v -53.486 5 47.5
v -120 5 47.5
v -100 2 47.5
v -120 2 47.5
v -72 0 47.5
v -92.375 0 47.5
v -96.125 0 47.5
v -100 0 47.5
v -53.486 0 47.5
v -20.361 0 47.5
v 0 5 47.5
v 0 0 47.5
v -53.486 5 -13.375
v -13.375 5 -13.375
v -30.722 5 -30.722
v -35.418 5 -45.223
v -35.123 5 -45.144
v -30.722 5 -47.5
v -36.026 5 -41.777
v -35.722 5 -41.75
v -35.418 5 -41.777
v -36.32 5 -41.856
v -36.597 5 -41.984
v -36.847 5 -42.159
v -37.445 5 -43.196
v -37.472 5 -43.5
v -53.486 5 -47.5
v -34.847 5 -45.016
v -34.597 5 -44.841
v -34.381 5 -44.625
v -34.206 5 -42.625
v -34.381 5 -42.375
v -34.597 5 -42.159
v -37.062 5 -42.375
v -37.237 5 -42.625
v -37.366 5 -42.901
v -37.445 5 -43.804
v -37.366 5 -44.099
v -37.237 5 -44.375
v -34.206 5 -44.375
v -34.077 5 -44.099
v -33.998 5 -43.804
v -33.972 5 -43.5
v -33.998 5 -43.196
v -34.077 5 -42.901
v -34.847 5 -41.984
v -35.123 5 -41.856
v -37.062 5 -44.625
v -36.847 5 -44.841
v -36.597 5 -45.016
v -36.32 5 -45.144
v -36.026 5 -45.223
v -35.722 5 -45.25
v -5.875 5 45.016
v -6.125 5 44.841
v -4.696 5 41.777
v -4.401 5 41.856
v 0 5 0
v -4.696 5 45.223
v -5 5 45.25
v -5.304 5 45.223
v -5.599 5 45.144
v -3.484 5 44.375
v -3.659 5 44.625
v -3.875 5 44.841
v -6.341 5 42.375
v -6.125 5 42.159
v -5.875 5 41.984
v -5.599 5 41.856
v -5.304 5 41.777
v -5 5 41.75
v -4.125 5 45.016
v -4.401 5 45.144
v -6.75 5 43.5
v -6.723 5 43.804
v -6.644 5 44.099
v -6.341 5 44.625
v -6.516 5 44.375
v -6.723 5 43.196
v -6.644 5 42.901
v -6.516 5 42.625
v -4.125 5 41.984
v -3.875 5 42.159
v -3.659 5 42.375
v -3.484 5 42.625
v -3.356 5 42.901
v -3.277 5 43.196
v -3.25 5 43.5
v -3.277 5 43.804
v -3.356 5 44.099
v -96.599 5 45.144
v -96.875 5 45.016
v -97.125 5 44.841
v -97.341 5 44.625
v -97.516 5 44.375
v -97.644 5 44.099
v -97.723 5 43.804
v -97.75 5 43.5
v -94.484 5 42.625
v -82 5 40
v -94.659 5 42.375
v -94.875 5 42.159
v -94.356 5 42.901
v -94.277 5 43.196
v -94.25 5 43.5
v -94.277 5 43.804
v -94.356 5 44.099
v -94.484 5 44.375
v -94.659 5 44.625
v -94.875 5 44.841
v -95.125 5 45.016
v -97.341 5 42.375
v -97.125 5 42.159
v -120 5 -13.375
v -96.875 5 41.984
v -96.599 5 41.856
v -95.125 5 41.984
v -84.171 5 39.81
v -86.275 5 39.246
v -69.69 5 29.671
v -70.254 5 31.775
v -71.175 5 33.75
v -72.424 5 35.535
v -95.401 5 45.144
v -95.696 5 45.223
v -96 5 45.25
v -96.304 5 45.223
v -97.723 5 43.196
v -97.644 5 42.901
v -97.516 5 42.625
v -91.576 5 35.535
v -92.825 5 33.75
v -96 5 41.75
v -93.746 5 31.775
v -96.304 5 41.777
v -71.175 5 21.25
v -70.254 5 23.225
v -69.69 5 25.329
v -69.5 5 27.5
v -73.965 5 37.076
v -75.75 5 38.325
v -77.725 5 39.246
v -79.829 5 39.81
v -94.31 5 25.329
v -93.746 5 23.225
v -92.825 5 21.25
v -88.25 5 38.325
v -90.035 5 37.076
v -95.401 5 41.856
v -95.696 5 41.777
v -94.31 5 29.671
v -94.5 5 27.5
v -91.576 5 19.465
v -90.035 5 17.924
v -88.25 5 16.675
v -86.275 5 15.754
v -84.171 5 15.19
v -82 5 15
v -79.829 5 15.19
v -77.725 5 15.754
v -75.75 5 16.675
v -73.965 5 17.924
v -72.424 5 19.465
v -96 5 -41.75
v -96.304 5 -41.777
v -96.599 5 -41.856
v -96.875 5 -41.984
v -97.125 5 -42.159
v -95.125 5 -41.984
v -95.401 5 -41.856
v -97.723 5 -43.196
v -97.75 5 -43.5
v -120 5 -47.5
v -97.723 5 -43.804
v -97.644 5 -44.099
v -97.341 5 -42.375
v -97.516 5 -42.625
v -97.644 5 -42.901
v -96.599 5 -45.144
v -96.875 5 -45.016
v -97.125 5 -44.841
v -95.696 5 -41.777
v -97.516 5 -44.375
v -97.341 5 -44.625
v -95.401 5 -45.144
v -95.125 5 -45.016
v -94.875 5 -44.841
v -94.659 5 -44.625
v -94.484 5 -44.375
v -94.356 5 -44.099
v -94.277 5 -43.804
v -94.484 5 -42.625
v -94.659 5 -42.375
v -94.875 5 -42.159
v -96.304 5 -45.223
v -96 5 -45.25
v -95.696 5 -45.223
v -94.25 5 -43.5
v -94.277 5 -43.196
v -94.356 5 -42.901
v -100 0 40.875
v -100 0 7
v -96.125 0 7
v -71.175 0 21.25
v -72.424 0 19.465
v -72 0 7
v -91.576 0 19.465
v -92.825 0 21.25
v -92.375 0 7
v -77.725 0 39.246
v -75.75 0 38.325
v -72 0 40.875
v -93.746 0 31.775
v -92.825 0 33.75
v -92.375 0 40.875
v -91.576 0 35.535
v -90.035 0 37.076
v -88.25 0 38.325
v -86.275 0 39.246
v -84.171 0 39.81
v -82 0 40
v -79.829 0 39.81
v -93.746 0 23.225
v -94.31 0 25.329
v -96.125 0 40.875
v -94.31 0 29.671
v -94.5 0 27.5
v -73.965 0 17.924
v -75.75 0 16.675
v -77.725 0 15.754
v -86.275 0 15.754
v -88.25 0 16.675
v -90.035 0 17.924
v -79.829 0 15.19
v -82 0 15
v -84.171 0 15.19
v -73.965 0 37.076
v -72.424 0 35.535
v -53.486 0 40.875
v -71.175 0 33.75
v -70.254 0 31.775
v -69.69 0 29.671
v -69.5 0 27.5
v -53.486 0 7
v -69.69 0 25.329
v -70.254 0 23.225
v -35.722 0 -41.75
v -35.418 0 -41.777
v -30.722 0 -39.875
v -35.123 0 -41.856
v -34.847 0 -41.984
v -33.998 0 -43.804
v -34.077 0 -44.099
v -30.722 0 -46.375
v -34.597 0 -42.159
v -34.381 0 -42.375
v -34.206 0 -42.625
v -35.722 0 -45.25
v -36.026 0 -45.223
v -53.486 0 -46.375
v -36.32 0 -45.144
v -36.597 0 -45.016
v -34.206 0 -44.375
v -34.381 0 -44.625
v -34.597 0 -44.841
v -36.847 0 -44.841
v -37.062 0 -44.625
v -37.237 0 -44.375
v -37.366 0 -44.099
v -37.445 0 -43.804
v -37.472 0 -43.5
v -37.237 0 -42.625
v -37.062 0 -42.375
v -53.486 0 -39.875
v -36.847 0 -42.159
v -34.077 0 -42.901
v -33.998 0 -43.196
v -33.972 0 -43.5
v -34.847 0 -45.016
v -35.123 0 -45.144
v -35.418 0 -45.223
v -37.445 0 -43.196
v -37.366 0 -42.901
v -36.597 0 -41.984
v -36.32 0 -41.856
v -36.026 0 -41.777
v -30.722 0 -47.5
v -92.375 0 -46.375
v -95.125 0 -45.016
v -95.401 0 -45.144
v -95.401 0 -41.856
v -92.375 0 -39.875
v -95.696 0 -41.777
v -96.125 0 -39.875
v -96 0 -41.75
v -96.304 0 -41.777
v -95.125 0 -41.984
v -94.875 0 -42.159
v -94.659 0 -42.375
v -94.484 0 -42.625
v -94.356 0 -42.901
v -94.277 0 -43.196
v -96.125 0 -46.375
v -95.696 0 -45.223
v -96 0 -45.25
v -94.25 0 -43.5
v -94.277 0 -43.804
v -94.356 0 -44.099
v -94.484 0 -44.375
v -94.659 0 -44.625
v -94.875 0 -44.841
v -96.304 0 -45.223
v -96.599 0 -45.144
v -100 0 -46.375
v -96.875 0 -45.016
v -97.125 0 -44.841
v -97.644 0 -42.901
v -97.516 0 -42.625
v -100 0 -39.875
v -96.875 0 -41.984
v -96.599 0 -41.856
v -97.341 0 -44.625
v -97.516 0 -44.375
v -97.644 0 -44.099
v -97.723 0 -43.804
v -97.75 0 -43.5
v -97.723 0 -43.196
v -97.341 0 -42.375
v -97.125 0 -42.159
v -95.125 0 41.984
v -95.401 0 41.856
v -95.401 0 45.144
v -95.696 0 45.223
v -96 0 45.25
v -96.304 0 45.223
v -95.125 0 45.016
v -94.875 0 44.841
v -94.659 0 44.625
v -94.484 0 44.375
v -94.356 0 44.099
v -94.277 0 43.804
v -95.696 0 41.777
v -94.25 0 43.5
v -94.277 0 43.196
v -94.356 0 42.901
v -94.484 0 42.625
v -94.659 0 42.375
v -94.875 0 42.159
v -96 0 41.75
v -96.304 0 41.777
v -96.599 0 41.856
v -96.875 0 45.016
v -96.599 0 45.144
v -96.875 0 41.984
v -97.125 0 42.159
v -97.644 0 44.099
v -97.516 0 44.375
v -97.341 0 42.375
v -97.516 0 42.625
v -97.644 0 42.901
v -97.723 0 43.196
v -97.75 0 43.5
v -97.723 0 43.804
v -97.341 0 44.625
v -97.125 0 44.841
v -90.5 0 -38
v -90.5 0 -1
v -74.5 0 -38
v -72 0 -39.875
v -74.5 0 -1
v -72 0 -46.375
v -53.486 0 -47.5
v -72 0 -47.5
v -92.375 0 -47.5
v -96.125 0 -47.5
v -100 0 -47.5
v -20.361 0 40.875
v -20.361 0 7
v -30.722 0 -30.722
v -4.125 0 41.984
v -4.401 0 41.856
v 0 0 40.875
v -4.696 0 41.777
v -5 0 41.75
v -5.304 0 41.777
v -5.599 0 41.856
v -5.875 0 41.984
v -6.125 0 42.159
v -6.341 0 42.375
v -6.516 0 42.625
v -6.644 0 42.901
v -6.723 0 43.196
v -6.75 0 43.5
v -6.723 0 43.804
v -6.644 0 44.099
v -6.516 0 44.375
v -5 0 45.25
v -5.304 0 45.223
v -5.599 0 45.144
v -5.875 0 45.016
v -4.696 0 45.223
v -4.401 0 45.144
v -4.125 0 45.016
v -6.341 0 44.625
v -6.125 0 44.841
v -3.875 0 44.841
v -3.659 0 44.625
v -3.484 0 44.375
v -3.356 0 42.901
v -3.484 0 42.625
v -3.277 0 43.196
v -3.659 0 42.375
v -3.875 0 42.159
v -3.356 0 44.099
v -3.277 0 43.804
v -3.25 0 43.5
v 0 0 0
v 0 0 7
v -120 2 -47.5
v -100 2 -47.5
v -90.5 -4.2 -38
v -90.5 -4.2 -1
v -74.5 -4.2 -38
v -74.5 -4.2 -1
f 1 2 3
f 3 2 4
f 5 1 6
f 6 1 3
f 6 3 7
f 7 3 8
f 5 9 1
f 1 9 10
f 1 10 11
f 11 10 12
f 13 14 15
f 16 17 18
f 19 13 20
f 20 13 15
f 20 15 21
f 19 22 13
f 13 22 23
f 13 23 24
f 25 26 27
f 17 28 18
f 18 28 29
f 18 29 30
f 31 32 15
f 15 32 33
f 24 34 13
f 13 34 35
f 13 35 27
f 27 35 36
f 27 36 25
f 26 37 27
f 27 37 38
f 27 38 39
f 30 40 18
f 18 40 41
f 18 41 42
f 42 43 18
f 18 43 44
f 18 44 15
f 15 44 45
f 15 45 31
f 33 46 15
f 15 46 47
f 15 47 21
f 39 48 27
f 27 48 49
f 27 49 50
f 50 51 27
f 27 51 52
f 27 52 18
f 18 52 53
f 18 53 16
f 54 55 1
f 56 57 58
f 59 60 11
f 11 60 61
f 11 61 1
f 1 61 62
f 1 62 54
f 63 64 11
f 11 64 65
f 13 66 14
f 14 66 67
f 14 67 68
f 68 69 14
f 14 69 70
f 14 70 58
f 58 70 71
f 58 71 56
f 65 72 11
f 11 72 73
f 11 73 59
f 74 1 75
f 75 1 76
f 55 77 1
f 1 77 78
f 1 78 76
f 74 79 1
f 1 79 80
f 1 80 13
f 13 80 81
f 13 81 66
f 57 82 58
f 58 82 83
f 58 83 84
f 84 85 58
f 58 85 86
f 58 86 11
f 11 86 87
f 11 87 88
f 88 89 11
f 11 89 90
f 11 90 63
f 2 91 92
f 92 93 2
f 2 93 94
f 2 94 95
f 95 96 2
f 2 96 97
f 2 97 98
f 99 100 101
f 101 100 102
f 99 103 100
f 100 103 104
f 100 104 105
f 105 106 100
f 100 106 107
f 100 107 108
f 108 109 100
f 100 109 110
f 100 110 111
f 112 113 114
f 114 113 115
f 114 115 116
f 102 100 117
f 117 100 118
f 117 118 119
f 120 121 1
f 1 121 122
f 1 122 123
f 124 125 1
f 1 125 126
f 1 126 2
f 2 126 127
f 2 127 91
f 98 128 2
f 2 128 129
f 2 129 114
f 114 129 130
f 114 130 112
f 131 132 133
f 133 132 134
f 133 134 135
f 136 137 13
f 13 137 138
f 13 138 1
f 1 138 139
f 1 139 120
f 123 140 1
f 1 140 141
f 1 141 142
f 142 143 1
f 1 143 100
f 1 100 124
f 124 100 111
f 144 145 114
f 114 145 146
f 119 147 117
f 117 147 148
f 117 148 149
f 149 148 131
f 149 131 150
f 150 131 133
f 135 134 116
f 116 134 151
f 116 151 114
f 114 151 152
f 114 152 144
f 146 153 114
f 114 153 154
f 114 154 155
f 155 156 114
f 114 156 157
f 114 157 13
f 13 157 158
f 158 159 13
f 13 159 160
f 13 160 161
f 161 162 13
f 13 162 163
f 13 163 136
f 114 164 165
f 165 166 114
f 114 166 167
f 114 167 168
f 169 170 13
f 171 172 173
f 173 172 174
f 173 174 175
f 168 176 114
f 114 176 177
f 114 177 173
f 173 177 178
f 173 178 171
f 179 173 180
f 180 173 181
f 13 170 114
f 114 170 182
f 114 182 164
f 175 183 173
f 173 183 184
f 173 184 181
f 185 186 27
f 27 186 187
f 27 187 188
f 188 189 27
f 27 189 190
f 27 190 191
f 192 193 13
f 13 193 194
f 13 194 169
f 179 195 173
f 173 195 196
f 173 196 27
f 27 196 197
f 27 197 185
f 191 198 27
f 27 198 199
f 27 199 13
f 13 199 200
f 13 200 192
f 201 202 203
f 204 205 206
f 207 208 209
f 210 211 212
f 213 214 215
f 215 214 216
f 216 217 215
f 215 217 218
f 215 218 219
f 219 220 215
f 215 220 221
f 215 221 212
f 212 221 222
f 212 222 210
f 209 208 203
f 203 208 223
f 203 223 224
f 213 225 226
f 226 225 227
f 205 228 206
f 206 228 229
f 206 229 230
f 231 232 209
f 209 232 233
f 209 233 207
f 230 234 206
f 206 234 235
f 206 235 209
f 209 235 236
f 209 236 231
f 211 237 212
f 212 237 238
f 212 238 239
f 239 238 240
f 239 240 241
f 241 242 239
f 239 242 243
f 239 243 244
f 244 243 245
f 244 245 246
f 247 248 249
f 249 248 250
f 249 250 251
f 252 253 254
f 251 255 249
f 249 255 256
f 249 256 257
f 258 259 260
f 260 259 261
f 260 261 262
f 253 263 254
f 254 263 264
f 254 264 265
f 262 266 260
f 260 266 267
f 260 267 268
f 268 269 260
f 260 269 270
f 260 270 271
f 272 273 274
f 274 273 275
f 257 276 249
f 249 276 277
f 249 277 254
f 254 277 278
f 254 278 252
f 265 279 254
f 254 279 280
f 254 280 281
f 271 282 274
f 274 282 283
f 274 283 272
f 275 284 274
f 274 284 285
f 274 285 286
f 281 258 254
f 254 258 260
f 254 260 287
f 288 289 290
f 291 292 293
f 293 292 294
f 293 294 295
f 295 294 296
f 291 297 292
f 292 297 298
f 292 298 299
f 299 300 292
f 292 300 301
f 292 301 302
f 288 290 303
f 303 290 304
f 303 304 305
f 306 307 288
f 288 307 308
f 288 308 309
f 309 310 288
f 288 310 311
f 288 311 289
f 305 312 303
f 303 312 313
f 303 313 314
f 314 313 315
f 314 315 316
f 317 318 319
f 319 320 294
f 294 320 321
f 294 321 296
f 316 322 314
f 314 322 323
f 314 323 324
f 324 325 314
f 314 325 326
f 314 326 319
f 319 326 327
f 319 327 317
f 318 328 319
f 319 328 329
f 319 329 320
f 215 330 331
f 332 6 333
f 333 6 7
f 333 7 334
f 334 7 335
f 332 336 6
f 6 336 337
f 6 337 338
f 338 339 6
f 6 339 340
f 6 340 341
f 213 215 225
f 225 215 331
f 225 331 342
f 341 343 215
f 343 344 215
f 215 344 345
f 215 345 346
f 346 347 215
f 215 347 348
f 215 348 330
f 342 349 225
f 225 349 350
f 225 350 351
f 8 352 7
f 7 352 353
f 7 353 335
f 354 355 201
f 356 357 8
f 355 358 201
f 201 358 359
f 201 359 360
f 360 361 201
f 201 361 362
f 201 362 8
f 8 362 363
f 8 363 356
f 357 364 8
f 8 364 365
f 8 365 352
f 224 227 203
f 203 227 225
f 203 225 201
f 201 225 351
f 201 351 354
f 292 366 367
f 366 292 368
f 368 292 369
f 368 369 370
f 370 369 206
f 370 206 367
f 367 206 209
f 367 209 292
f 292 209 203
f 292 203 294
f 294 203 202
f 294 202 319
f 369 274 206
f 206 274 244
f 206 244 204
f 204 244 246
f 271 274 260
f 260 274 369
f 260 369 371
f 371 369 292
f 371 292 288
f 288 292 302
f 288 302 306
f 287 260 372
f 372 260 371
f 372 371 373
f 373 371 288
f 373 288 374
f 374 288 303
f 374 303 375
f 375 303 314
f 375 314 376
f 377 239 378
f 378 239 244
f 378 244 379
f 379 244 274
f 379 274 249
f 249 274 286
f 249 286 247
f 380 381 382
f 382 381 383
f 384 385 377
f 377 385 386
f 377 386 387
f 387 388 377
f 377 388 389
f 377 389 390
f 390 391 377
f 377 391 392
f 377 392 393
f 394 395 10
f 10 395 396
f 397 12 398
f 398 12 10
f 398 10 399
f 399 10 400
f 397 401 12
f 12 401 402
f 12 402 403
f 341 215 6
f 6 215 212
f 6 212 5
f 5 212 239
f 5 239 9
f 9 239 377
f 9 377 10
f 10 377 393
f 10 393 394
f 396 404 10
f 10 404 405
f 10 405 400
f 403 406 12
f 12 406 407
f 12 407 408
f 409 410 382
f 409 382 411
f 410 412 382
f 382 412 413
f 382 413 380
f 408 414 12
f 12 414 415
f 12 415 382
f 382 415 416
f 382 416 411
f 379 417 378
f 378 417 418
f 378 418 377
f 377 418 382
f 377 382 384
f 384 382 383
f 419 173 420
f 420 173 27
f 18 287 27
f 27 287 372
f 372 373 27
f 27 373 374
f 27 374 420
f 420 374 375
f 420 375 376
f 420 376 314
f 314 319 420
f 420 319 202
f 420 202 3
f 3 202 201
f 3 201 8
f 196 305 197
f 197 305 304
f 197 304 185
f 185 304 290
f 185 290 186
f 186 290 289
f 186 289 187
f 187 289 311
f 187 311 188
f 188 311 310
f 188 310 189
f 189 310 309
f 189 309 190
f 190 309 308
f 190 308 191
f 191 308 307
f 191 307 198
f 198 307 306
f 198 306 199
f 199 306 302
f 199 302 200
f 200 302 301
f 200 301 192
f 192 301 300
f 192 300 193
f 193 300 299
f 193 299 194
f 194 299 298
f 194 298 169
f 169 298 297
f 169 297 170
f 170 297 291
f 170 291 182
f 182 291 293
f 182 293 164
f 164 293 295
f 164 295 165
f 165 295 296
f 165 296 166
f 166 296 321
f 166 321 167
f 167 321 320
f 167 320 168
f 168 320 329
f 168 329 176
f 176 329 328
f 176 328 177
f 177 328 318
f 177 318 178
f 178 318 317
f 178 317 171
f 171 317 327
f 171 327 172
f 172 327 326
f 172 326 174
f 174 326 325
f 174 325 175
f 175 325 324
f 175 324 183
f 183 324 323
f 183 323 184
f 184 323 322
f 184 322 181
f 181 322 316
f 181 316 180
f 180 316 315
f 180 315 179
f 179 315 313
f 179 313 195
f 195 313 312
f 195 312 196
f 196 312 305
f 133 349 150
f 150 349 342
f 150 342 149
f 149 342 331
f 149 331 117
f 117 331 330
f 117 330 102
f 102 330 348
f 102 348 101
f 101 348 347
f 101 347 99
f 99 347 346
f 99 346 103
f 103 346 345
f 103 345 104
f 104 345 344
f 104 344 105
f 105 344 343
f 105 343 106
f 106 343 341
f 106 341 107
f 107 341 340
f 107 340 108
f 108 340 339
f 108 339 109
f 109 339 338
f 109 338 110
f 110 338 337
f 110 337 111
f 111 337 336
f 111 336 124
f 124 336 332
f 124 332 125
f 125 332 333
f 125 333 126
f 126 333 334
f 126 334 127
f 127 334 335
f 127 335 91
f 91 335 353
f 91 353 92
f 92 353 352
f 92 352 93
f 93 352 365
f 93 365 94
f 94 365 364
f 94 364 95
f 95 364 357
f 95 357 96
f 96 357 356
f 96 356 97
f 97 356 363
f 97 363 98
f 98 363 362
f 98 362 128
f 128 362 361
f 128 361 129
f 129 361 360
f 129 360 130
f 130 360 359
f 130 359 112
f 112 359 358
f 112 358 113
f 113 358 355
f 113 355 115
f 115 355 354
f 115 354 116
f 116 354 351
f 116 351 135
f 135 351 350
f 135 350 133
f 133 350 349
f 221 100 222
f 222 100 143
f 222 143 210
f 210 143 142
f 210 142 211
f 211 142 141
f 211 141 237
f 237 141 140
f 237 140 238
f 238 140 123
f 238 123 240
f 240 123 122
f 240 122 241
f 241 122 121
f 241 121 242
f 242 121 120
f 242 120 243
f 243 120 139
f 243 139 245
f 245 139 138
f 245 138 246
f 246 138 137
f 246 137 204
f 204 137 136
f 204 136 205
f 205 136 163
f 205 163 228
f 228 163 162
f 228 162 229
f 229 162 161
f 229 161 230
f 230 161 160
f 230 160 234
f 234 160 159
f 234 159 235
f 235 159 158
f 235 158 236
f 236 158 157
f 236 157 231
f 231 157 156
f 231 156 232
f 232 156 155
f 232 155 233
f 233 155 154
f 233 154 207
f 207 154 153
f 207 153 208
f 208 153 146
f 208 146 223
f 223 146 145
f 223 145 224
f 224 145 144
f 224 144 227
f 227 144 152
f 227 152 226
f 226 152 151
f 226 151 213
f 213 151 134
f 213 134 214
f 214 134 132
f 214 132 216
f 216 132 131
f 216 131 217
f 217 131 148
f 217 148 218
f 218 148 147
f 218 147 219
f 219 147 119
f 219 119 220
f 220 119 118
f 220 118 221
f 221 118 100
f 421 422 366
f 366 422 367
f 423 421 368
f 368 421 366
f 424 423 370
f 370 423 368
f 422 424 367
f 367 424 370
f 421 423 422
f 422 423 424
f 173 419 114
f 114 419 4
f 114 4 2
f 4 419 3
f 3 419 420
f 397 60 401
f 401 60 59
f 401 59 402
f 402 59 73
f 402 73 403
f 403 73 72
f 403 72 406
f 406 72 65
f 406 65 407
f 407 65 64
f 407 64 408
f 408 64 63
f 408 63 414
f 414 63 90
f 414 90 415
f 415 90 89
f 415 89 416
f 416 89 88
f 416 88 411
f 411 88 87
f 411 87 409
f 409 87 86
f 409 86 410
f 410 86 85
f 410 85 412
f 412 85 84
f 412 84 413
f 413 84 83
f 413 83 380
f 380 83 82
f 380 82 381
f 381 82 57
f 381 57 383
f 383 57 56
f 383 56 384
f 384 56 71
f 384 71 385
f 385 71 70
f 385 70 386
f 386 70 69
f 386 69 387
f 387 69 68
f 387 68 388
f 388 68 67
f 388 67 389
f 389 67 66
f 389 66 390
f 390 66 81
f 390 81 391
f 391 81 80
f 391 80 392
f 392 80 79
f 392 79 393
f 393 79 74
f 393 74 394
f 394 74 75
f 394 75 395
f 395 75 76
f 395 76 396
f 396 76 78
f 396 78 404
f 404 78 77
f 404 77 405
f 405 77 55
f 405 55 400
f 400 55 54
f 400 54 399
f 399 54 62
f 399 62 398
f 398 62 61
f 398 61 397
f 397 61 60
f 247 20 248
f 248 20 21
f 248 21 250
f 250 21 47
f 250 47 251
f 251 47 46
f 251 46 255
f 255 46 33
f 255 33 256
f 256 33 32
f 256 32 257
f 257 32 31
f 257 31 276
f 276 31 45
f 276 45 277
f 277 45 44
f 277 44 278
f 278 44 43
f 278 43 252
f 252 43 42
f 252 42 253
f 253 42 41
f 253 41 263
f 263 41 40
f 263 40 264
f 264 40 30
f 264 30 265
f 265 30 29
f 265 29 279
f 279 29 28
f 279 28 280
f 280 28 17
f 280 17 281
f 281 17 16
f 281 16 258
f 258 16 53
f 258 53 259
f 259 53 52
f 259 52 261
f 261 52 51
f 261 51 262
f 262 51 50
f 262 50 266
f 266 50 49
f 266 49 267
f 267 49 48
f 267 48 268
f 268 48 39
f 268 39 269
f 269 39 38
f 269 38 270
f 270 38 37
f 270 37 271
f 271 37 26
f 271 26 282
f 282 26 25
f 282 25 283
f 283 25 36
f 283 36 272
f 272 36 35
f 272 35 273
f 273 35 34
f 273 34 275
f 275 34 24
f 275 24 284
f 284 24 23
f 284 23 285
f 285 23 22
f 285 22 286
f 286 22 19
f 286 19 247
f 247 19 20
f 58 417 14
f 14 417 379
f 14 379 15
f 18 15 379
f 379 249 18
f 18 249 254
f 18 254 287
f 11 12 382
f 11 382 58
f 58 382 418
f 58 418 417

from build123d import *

# Parameters (mm, degrees)
SKETCH1_W               = 200
SKETCH1_H               = 95
SKETCH1_R               = 1.75
BOSS_EXTRUDE1_DEPTH     = 5
SKETCH2_R               = 15
SKETCH2_R_2             = 12.5
CUT_EXTRUDE1_DEPTH      = 5
SKETCH4_W               = 16
SKETCH4_H               = 37
BOSS_EXTRUDE2_DEPTH     = 4.2
SKETCH6_W               = 20
SKETCH6_H               = 95
BOSS_EXTRUDE3_DEPTH     = 3
BOSS_EXTRUDE4_START     = 4
BOSS_EXTRUDE4_DEPTH     = 4
SKETCH9_R               = 13
BOSS_EXTRUDE5_DEPTH     = 2
CUT_EXTRUDE2_DEPTH      = 5
SKETCH11_R              = 1.75
CUT_EXTRUDE3_DEPTH      = 10
CUT_EXTRUDE4_DEPTH      = 10
CUT_EXTRUDE4_DEPTH_BACK = 10
SKETCH14_R              = 1.75


with BuildPart() as part:
    # Sketch1 → Boss-Extrude1 (new body)
    with BuildSketch(Plane(origin=(0, 0, 0), x_dir=(1, 0, 0), z_dir=(0, 1, 0))):
        Rectangle(SKETCH1_W, SKETCH1_H)
        with Locations(Location((-96, 43.5, 0), (0, 0, 270))):
            Circle(SKETCH1_R, mode=Mode.SUBTRACT)
        with Locations(Location((-96, -43.5, 0), (0, 0, 270))):
            Circle(SKETCH1_R, mode=Mode.SUBTRACT)
        with Locations(Location((97, 43.5, 0), (0, 0, 270))):
            Circle(SKETCH1_R, mode=Mode.SUBTRACT)
        with Locations(Location((97, -43.5, 0), (0, 0, 270))):
            Circle(SKETCH1_R, mode=Mode.SUBTRACT)
    extrude(amount=BOSS_EXTRUDE1_DEPTH)

    # Sketch2 → Cut-Extrude1 (cut)
    with BuildSketch(Plane(origin=(0, 5, 0), x_dir=(1, 0, 0), z_dir=(0, 1, 0))):
        with Locations((33.5, 0)):
            Circle(SKETCH2_R)
        with BuildLine():
            ThreePointArc((48.5, 0), (39.240251485, -13.858192988), (22.893398282, -10.606601718))
            Line((22.893398282, -10.606601718), (47.393398282, -35.106601718))
            ThreePointArc((47.393398282, -35.106601718), (52.259748515, -10.641807012), (73, -24.5))
            ThreePointArc((73, -24.5), (71.858192988, -30.240251485), (68.606601718, -35.106601718))
            Line((68.606601718, -35.106601718), (93.106601718, -10.606601718))
            ThreePointArc((93.106601718, -10.606601718), (67.5, 0), (93.106601718, 10.606601718))
            Line((93.106601718, 10.606601718), (68.606601718, 35.106601718))
            ThreePointArc((68.606601718, 35.106601718), (71.858192988, 30.240251485), (73, 24.5))
            ThreePointArc((73, 24.5), (52.259748515, 10.641807012), (47.393398282, 35.106601718))
            Line((47.393398282, 35.106601718), (22.893398282, 10.606601718))
            ThreePointArc((22.893398282, 10.606601718), (39.240251485, 13.858192988), (48.5, 0))
        make_face()
        with Locations((58, -24.5)):
            Circle(SKETCH2_R)
        with Locations((82.5, 0)):
            Circle(SKETCH2_R)
        with Locations((58, 24.5)):
            Circle(SKETCH2_R)
        with Locations(Location((-82, -27.5, 0), (0, 0, 270))):
            Circle(SKETCH2_R_2)
    extrude(amount=-CUT_EXTRUDE1_DEPTH, mode=Mode.SUBTRACT)

    # Sketch4 → Boss-Extrude2 (add)
    with BuildSketch(Plane.XZ):
        with Locations((-82.5, -19.5)):
            Rectangle(SKETCH4_W, SKETCH4_H)
    extrude(amount=BOSS_EXTRUDE2_DEPTH)

    # Sketch6 → Boss-Extrude3 (add)
    with BuildSketch(Plane(origin=(0, 5, 0), x_dir=(1, 0, 0), z_dir=(0, 1, 0))):
        with Locations((-110, 0)):
            Rectangle(SKETCH6_W, SKETCH6_H)
        with Locations((110, 0)):
            Rectangle(SKETCH6_W, SKETCH6_H)
    extrude(amount=-BOSS_EXTRUDE3_DEPTH)

    # Sketch8 → Boss-Extrude4 (add)
    with BuildSketch(Plane(origin=(0, 5, 0), x_dir=(1, 0, 0), z_dir=(0, 1, 0)).offset(BOSS_EXTRUDE4_START)):
        with BuildLine():
            Line((70.727922061, -37.227922061), (95.227922061, -12.727922061))
            ThreePointArc((95.227922061, -12.727922061), (100.5, 0), (95.227922061, 12.727922061))
            Line((95.227922061, 12.727922061), (70.727922061, 37.227922061))
            ThreePointArc((70.727922061, 37.227922061), (58, 42.5), (45.272077939, 37.227922061))
            Line((45.272077939, 37.227922061), (20.772077939, 12.727922061))
            ThreePointArc((20.772077939, 12.727922061), (15.5, 0), (20.772077939, -12.727922061))
            Line((20.772077939, -12.727922061), (45.272077939, -37.227922061))
            ThreePointArc((45.272077939, -37.227922061), (58, -42.5), (70.727922061, -37.227922061))
        make_face()
        with BuildLine():
            Line((22.893398282, -10.606601718), (47.393398282, -35.106601718))
            ThreePointArc((47.393398282, -35.106601718), (58, -39.5), (68.606601718, -35.106601718))
            Line((68.606601718, -35.106601718), (93.106601718, -10.606601718))
            ThreePointArc((93.106601718, -10.606601718), (97.5, 0), (93.106601718, 10.606601718))
            Line((93.106601718, 10.606601718), (68.606601718, 35.106601718))
            ThreePointArc((68.606601718, 35.106601718), (58, 39.5), (47.393398282, 35.106601718))
            Line((47.393398282, 35.106601718), (22.893398282, 10.606601718))
            ThreePointArc((22.893398282, 10.606601718), (18.5, 0), (22.893398282, -10.606601718))
        make_face(mode=Mode.SUBTRACT)
    extrude(amount=-BOSS_EXTRUDE4_DEPTH)

    # Sketch9 → Boss-Extrude5 (add)
    with BuildSketch(Plane(origin=(0, 9, 0), x_dir=(1, 0, 0), z_dir=(0, 1, 0))):
        with BuildLine():
            Line((22.893398282, -10.606601718), (47.393398282, -35.106601718))
            ThreePointArc((47.393398282, -35.106601718), (58, -39.5), (68.606601718, -35.106601718))
            Line((68.606601718, -35.106601718), (93.106601718, -10.606601718))
            ThreePointArc((93.106601718, -10.606601718), (97.5, 0), (93.106601718, 10.606601718))
            Line((93.106601718, 10.606601718), (68.606601718, 35.106601718))
            ThreePointArc((68.606601718, 35.106601718), (58, 39.5), (47.393398282, 35.106601718))
            Line((47.393398282, 35.106601718), (22.893398282, 10.606601718))
            ThreePointArc((22.893398282, 10.606601718), (18.5, 0), (22.893398282, -10.606601718))
        make_face()
        with Locations(Location((58, 24.5, 0), (0, 0, 270))):
            Circle(SKETCH9_R, mode=Mode.SUBTRACT)
        with Locations(Location((82.5, 0, 0), (0, 0, 270))):
            Circle(SKETCH9_R, mode=Mode.SUBTRACT)
        with Locations(Location((58, -24.5, 0), (0, 0, 270))):
            Circle(SKETCH9_R, mode=Mode.SUBTRACT)
        with Locations(Location((33.5, 0, 0), (0, 0, 270))):
            Circle(SKETCH9_R, mode=Mode.SUBTRACT)
    extrude(amount=-BOSS_EXTRUDE5_DEPTH)

    # Sketch10 → Cut-Extrude2 (cut)
    with BuildSketch(Plane(origin=(0, 5, 0), x_dir=(1, 0, 0), z_dir=(0, 1, 0))):
        Polygon((0, 38.5), (-7.778174593, 30.721825407), (0, 22.943650814), (7.778174593, 30.721825407), align=None)
    extrude(amount=-CUT_EXTRUDE2_DEPTH, mode=Mode.SUBTRACT)

    # Sketch11 → Cut-Extrude3 (cut)
    with BuildSketch(Plane(origin=(0, 5, 0), x_dir=(1, 0, 0), z_dir=(0, 1, 0))):
        with Locations(Location((-35.721825407, 43.5, 0), (0, 0, 270))):
            Circle(SKETCH11_R)
        with Locations(Location((-25.721825407, 43.5, 0), (0, 0, 270))):
            Circle(SKETCH11_R)
        with Locations(Location((5, -43.5, 0), (0, 0, 270))):
            Circle(SKETCH11_R)
        with Locations(Location((-5, -43.5, 0), (0, 0, 270))):
            Circle(SKETCH11_R)
    extrude(amount=-CUT_EXTRUDE3_DEPTH, mode=Mode.SUBTRACT)

    # Sketch14 → Cut-Extrude4 (cut, two sides: drawn at the far end of the back side and taken through both)
    # profile 1 of 3: a face of its own
    with BuildSketch(Plane(origin=(0, 5, 0), x_dir=(1, 0, 0), z_dir=(0, 1, 0)).offset(-CUT_EXTRUDE4_DEPTH_BACK)):
        Polygon((-30.721825407, 47.5), (-30.721825407, 30.721825407), (0, 0), (0, -47.5), (120, -47.5), (120, 47.5), align=None)
        with Locations((5, -43.5)):
            Circle(SKETCH14_R, mode=Mode.SUBTRACT)
        with Locations((97, -43.5)):
            Circle(SKETCH14_R, mode=Mode.SUBTRACT)
        with BuildLine():
            ThreePointArc((45.272077939, 37.227922061), (58, 42.5), (70.727922061, 37.227922061))
            Line((70.727922061, 37.227922061), (95.227922061, 12.727922061))
            ThreePointArc((95.227922061, 12.727922061), (100.5, 0), (95.227922061, -12.727922061))
            Line((95.227922061, -12.727922061), (70.727922061, -37.227922061))
            ThreePointArc((70.727922061, -37.227922061), (58, -42.5), (45.272077939, -37.227922061))
            Line((45.272077939, -37.227922061), (20.772077939, -12.727922061))
            ThreePointArc((20.772077939, -12.727922061), (15.5, 0), (20.772077939, 12.727922061))
            Line((20.772077939, 12.727922061), (45.272077939, 37.227922061))
        make_face(mode=Mode.SUBTRACT)
        with Locations((-25.721825407, 43.5)):
            Circle(SKETCH14_R, mode=Mode.SUBTRACT)
        Polygon((-7.778174593, 30.721825407), (0, 38.5), (7.778174593, 30.721825407), (0, 22.943650814), align=None, mode=Mode.SUBTRACT)
        with Locations((97, 43.5)):
            Circle(SKETCH14_R, mode=Mode.SUBTRACT)
    # profile 2 of 3: a face of its own
    with BuildSketch(Plane(origin=(0, 5, 0), x_dir=(1, 0, 0), z_dir=(0, 1, 0)).offset(-CUT_EXTRUDE4_DEPTH_BACK)):
        with BuildLine():
            Line((70.727922061, 37.227922061), (95.227922061, 12.727922061))
            ThreePointArc((95.227922061, 12.727922061), (100.5, 0), (95.227922061, -12.727922061))
            Line((95.227922061, -12.727922061), (70.727922061, -37.227922061))
            ThreePointArc((70.727922061, -37.227922061), (58, -42.5), (45.272077939, -37.227922061))
            Line((45.272077939, -37.227922061), (20.772077939, -12.727922061))
            ThreePointArc((20.772077939, -12.727922061), (15.5, 0), (20.772077939, 12.727922061))
            Line((20.772077939, 12.727922061), (45.272077939, 37.227922061))
            ThreePointArc((45.272077939, 37.227922061), (58, 42.5), (70.727922061, 37.227922061))
        make_face()
    # profile 3 of 3: a face of its own
    with BuildSketch(Plane(origin=(0, 5, 0), x_dir=(1, 0, 0), z_dir=(0, 1, 0)).offset(-CUT_EXTRUDE4_DEPTH_BACK)):
        Polygon((0, 38.5), (7.778174593, 30.721825407), (0, 22.943650814), (-7.778174593, 30.721825407), align=None)
    extrude(amount=CUT_EXTRUDE4_DEPTH + CUT_EXTRUDE4_DEPTH_BACK, mode=Mode.SUBTRACT)


solid = part.part
